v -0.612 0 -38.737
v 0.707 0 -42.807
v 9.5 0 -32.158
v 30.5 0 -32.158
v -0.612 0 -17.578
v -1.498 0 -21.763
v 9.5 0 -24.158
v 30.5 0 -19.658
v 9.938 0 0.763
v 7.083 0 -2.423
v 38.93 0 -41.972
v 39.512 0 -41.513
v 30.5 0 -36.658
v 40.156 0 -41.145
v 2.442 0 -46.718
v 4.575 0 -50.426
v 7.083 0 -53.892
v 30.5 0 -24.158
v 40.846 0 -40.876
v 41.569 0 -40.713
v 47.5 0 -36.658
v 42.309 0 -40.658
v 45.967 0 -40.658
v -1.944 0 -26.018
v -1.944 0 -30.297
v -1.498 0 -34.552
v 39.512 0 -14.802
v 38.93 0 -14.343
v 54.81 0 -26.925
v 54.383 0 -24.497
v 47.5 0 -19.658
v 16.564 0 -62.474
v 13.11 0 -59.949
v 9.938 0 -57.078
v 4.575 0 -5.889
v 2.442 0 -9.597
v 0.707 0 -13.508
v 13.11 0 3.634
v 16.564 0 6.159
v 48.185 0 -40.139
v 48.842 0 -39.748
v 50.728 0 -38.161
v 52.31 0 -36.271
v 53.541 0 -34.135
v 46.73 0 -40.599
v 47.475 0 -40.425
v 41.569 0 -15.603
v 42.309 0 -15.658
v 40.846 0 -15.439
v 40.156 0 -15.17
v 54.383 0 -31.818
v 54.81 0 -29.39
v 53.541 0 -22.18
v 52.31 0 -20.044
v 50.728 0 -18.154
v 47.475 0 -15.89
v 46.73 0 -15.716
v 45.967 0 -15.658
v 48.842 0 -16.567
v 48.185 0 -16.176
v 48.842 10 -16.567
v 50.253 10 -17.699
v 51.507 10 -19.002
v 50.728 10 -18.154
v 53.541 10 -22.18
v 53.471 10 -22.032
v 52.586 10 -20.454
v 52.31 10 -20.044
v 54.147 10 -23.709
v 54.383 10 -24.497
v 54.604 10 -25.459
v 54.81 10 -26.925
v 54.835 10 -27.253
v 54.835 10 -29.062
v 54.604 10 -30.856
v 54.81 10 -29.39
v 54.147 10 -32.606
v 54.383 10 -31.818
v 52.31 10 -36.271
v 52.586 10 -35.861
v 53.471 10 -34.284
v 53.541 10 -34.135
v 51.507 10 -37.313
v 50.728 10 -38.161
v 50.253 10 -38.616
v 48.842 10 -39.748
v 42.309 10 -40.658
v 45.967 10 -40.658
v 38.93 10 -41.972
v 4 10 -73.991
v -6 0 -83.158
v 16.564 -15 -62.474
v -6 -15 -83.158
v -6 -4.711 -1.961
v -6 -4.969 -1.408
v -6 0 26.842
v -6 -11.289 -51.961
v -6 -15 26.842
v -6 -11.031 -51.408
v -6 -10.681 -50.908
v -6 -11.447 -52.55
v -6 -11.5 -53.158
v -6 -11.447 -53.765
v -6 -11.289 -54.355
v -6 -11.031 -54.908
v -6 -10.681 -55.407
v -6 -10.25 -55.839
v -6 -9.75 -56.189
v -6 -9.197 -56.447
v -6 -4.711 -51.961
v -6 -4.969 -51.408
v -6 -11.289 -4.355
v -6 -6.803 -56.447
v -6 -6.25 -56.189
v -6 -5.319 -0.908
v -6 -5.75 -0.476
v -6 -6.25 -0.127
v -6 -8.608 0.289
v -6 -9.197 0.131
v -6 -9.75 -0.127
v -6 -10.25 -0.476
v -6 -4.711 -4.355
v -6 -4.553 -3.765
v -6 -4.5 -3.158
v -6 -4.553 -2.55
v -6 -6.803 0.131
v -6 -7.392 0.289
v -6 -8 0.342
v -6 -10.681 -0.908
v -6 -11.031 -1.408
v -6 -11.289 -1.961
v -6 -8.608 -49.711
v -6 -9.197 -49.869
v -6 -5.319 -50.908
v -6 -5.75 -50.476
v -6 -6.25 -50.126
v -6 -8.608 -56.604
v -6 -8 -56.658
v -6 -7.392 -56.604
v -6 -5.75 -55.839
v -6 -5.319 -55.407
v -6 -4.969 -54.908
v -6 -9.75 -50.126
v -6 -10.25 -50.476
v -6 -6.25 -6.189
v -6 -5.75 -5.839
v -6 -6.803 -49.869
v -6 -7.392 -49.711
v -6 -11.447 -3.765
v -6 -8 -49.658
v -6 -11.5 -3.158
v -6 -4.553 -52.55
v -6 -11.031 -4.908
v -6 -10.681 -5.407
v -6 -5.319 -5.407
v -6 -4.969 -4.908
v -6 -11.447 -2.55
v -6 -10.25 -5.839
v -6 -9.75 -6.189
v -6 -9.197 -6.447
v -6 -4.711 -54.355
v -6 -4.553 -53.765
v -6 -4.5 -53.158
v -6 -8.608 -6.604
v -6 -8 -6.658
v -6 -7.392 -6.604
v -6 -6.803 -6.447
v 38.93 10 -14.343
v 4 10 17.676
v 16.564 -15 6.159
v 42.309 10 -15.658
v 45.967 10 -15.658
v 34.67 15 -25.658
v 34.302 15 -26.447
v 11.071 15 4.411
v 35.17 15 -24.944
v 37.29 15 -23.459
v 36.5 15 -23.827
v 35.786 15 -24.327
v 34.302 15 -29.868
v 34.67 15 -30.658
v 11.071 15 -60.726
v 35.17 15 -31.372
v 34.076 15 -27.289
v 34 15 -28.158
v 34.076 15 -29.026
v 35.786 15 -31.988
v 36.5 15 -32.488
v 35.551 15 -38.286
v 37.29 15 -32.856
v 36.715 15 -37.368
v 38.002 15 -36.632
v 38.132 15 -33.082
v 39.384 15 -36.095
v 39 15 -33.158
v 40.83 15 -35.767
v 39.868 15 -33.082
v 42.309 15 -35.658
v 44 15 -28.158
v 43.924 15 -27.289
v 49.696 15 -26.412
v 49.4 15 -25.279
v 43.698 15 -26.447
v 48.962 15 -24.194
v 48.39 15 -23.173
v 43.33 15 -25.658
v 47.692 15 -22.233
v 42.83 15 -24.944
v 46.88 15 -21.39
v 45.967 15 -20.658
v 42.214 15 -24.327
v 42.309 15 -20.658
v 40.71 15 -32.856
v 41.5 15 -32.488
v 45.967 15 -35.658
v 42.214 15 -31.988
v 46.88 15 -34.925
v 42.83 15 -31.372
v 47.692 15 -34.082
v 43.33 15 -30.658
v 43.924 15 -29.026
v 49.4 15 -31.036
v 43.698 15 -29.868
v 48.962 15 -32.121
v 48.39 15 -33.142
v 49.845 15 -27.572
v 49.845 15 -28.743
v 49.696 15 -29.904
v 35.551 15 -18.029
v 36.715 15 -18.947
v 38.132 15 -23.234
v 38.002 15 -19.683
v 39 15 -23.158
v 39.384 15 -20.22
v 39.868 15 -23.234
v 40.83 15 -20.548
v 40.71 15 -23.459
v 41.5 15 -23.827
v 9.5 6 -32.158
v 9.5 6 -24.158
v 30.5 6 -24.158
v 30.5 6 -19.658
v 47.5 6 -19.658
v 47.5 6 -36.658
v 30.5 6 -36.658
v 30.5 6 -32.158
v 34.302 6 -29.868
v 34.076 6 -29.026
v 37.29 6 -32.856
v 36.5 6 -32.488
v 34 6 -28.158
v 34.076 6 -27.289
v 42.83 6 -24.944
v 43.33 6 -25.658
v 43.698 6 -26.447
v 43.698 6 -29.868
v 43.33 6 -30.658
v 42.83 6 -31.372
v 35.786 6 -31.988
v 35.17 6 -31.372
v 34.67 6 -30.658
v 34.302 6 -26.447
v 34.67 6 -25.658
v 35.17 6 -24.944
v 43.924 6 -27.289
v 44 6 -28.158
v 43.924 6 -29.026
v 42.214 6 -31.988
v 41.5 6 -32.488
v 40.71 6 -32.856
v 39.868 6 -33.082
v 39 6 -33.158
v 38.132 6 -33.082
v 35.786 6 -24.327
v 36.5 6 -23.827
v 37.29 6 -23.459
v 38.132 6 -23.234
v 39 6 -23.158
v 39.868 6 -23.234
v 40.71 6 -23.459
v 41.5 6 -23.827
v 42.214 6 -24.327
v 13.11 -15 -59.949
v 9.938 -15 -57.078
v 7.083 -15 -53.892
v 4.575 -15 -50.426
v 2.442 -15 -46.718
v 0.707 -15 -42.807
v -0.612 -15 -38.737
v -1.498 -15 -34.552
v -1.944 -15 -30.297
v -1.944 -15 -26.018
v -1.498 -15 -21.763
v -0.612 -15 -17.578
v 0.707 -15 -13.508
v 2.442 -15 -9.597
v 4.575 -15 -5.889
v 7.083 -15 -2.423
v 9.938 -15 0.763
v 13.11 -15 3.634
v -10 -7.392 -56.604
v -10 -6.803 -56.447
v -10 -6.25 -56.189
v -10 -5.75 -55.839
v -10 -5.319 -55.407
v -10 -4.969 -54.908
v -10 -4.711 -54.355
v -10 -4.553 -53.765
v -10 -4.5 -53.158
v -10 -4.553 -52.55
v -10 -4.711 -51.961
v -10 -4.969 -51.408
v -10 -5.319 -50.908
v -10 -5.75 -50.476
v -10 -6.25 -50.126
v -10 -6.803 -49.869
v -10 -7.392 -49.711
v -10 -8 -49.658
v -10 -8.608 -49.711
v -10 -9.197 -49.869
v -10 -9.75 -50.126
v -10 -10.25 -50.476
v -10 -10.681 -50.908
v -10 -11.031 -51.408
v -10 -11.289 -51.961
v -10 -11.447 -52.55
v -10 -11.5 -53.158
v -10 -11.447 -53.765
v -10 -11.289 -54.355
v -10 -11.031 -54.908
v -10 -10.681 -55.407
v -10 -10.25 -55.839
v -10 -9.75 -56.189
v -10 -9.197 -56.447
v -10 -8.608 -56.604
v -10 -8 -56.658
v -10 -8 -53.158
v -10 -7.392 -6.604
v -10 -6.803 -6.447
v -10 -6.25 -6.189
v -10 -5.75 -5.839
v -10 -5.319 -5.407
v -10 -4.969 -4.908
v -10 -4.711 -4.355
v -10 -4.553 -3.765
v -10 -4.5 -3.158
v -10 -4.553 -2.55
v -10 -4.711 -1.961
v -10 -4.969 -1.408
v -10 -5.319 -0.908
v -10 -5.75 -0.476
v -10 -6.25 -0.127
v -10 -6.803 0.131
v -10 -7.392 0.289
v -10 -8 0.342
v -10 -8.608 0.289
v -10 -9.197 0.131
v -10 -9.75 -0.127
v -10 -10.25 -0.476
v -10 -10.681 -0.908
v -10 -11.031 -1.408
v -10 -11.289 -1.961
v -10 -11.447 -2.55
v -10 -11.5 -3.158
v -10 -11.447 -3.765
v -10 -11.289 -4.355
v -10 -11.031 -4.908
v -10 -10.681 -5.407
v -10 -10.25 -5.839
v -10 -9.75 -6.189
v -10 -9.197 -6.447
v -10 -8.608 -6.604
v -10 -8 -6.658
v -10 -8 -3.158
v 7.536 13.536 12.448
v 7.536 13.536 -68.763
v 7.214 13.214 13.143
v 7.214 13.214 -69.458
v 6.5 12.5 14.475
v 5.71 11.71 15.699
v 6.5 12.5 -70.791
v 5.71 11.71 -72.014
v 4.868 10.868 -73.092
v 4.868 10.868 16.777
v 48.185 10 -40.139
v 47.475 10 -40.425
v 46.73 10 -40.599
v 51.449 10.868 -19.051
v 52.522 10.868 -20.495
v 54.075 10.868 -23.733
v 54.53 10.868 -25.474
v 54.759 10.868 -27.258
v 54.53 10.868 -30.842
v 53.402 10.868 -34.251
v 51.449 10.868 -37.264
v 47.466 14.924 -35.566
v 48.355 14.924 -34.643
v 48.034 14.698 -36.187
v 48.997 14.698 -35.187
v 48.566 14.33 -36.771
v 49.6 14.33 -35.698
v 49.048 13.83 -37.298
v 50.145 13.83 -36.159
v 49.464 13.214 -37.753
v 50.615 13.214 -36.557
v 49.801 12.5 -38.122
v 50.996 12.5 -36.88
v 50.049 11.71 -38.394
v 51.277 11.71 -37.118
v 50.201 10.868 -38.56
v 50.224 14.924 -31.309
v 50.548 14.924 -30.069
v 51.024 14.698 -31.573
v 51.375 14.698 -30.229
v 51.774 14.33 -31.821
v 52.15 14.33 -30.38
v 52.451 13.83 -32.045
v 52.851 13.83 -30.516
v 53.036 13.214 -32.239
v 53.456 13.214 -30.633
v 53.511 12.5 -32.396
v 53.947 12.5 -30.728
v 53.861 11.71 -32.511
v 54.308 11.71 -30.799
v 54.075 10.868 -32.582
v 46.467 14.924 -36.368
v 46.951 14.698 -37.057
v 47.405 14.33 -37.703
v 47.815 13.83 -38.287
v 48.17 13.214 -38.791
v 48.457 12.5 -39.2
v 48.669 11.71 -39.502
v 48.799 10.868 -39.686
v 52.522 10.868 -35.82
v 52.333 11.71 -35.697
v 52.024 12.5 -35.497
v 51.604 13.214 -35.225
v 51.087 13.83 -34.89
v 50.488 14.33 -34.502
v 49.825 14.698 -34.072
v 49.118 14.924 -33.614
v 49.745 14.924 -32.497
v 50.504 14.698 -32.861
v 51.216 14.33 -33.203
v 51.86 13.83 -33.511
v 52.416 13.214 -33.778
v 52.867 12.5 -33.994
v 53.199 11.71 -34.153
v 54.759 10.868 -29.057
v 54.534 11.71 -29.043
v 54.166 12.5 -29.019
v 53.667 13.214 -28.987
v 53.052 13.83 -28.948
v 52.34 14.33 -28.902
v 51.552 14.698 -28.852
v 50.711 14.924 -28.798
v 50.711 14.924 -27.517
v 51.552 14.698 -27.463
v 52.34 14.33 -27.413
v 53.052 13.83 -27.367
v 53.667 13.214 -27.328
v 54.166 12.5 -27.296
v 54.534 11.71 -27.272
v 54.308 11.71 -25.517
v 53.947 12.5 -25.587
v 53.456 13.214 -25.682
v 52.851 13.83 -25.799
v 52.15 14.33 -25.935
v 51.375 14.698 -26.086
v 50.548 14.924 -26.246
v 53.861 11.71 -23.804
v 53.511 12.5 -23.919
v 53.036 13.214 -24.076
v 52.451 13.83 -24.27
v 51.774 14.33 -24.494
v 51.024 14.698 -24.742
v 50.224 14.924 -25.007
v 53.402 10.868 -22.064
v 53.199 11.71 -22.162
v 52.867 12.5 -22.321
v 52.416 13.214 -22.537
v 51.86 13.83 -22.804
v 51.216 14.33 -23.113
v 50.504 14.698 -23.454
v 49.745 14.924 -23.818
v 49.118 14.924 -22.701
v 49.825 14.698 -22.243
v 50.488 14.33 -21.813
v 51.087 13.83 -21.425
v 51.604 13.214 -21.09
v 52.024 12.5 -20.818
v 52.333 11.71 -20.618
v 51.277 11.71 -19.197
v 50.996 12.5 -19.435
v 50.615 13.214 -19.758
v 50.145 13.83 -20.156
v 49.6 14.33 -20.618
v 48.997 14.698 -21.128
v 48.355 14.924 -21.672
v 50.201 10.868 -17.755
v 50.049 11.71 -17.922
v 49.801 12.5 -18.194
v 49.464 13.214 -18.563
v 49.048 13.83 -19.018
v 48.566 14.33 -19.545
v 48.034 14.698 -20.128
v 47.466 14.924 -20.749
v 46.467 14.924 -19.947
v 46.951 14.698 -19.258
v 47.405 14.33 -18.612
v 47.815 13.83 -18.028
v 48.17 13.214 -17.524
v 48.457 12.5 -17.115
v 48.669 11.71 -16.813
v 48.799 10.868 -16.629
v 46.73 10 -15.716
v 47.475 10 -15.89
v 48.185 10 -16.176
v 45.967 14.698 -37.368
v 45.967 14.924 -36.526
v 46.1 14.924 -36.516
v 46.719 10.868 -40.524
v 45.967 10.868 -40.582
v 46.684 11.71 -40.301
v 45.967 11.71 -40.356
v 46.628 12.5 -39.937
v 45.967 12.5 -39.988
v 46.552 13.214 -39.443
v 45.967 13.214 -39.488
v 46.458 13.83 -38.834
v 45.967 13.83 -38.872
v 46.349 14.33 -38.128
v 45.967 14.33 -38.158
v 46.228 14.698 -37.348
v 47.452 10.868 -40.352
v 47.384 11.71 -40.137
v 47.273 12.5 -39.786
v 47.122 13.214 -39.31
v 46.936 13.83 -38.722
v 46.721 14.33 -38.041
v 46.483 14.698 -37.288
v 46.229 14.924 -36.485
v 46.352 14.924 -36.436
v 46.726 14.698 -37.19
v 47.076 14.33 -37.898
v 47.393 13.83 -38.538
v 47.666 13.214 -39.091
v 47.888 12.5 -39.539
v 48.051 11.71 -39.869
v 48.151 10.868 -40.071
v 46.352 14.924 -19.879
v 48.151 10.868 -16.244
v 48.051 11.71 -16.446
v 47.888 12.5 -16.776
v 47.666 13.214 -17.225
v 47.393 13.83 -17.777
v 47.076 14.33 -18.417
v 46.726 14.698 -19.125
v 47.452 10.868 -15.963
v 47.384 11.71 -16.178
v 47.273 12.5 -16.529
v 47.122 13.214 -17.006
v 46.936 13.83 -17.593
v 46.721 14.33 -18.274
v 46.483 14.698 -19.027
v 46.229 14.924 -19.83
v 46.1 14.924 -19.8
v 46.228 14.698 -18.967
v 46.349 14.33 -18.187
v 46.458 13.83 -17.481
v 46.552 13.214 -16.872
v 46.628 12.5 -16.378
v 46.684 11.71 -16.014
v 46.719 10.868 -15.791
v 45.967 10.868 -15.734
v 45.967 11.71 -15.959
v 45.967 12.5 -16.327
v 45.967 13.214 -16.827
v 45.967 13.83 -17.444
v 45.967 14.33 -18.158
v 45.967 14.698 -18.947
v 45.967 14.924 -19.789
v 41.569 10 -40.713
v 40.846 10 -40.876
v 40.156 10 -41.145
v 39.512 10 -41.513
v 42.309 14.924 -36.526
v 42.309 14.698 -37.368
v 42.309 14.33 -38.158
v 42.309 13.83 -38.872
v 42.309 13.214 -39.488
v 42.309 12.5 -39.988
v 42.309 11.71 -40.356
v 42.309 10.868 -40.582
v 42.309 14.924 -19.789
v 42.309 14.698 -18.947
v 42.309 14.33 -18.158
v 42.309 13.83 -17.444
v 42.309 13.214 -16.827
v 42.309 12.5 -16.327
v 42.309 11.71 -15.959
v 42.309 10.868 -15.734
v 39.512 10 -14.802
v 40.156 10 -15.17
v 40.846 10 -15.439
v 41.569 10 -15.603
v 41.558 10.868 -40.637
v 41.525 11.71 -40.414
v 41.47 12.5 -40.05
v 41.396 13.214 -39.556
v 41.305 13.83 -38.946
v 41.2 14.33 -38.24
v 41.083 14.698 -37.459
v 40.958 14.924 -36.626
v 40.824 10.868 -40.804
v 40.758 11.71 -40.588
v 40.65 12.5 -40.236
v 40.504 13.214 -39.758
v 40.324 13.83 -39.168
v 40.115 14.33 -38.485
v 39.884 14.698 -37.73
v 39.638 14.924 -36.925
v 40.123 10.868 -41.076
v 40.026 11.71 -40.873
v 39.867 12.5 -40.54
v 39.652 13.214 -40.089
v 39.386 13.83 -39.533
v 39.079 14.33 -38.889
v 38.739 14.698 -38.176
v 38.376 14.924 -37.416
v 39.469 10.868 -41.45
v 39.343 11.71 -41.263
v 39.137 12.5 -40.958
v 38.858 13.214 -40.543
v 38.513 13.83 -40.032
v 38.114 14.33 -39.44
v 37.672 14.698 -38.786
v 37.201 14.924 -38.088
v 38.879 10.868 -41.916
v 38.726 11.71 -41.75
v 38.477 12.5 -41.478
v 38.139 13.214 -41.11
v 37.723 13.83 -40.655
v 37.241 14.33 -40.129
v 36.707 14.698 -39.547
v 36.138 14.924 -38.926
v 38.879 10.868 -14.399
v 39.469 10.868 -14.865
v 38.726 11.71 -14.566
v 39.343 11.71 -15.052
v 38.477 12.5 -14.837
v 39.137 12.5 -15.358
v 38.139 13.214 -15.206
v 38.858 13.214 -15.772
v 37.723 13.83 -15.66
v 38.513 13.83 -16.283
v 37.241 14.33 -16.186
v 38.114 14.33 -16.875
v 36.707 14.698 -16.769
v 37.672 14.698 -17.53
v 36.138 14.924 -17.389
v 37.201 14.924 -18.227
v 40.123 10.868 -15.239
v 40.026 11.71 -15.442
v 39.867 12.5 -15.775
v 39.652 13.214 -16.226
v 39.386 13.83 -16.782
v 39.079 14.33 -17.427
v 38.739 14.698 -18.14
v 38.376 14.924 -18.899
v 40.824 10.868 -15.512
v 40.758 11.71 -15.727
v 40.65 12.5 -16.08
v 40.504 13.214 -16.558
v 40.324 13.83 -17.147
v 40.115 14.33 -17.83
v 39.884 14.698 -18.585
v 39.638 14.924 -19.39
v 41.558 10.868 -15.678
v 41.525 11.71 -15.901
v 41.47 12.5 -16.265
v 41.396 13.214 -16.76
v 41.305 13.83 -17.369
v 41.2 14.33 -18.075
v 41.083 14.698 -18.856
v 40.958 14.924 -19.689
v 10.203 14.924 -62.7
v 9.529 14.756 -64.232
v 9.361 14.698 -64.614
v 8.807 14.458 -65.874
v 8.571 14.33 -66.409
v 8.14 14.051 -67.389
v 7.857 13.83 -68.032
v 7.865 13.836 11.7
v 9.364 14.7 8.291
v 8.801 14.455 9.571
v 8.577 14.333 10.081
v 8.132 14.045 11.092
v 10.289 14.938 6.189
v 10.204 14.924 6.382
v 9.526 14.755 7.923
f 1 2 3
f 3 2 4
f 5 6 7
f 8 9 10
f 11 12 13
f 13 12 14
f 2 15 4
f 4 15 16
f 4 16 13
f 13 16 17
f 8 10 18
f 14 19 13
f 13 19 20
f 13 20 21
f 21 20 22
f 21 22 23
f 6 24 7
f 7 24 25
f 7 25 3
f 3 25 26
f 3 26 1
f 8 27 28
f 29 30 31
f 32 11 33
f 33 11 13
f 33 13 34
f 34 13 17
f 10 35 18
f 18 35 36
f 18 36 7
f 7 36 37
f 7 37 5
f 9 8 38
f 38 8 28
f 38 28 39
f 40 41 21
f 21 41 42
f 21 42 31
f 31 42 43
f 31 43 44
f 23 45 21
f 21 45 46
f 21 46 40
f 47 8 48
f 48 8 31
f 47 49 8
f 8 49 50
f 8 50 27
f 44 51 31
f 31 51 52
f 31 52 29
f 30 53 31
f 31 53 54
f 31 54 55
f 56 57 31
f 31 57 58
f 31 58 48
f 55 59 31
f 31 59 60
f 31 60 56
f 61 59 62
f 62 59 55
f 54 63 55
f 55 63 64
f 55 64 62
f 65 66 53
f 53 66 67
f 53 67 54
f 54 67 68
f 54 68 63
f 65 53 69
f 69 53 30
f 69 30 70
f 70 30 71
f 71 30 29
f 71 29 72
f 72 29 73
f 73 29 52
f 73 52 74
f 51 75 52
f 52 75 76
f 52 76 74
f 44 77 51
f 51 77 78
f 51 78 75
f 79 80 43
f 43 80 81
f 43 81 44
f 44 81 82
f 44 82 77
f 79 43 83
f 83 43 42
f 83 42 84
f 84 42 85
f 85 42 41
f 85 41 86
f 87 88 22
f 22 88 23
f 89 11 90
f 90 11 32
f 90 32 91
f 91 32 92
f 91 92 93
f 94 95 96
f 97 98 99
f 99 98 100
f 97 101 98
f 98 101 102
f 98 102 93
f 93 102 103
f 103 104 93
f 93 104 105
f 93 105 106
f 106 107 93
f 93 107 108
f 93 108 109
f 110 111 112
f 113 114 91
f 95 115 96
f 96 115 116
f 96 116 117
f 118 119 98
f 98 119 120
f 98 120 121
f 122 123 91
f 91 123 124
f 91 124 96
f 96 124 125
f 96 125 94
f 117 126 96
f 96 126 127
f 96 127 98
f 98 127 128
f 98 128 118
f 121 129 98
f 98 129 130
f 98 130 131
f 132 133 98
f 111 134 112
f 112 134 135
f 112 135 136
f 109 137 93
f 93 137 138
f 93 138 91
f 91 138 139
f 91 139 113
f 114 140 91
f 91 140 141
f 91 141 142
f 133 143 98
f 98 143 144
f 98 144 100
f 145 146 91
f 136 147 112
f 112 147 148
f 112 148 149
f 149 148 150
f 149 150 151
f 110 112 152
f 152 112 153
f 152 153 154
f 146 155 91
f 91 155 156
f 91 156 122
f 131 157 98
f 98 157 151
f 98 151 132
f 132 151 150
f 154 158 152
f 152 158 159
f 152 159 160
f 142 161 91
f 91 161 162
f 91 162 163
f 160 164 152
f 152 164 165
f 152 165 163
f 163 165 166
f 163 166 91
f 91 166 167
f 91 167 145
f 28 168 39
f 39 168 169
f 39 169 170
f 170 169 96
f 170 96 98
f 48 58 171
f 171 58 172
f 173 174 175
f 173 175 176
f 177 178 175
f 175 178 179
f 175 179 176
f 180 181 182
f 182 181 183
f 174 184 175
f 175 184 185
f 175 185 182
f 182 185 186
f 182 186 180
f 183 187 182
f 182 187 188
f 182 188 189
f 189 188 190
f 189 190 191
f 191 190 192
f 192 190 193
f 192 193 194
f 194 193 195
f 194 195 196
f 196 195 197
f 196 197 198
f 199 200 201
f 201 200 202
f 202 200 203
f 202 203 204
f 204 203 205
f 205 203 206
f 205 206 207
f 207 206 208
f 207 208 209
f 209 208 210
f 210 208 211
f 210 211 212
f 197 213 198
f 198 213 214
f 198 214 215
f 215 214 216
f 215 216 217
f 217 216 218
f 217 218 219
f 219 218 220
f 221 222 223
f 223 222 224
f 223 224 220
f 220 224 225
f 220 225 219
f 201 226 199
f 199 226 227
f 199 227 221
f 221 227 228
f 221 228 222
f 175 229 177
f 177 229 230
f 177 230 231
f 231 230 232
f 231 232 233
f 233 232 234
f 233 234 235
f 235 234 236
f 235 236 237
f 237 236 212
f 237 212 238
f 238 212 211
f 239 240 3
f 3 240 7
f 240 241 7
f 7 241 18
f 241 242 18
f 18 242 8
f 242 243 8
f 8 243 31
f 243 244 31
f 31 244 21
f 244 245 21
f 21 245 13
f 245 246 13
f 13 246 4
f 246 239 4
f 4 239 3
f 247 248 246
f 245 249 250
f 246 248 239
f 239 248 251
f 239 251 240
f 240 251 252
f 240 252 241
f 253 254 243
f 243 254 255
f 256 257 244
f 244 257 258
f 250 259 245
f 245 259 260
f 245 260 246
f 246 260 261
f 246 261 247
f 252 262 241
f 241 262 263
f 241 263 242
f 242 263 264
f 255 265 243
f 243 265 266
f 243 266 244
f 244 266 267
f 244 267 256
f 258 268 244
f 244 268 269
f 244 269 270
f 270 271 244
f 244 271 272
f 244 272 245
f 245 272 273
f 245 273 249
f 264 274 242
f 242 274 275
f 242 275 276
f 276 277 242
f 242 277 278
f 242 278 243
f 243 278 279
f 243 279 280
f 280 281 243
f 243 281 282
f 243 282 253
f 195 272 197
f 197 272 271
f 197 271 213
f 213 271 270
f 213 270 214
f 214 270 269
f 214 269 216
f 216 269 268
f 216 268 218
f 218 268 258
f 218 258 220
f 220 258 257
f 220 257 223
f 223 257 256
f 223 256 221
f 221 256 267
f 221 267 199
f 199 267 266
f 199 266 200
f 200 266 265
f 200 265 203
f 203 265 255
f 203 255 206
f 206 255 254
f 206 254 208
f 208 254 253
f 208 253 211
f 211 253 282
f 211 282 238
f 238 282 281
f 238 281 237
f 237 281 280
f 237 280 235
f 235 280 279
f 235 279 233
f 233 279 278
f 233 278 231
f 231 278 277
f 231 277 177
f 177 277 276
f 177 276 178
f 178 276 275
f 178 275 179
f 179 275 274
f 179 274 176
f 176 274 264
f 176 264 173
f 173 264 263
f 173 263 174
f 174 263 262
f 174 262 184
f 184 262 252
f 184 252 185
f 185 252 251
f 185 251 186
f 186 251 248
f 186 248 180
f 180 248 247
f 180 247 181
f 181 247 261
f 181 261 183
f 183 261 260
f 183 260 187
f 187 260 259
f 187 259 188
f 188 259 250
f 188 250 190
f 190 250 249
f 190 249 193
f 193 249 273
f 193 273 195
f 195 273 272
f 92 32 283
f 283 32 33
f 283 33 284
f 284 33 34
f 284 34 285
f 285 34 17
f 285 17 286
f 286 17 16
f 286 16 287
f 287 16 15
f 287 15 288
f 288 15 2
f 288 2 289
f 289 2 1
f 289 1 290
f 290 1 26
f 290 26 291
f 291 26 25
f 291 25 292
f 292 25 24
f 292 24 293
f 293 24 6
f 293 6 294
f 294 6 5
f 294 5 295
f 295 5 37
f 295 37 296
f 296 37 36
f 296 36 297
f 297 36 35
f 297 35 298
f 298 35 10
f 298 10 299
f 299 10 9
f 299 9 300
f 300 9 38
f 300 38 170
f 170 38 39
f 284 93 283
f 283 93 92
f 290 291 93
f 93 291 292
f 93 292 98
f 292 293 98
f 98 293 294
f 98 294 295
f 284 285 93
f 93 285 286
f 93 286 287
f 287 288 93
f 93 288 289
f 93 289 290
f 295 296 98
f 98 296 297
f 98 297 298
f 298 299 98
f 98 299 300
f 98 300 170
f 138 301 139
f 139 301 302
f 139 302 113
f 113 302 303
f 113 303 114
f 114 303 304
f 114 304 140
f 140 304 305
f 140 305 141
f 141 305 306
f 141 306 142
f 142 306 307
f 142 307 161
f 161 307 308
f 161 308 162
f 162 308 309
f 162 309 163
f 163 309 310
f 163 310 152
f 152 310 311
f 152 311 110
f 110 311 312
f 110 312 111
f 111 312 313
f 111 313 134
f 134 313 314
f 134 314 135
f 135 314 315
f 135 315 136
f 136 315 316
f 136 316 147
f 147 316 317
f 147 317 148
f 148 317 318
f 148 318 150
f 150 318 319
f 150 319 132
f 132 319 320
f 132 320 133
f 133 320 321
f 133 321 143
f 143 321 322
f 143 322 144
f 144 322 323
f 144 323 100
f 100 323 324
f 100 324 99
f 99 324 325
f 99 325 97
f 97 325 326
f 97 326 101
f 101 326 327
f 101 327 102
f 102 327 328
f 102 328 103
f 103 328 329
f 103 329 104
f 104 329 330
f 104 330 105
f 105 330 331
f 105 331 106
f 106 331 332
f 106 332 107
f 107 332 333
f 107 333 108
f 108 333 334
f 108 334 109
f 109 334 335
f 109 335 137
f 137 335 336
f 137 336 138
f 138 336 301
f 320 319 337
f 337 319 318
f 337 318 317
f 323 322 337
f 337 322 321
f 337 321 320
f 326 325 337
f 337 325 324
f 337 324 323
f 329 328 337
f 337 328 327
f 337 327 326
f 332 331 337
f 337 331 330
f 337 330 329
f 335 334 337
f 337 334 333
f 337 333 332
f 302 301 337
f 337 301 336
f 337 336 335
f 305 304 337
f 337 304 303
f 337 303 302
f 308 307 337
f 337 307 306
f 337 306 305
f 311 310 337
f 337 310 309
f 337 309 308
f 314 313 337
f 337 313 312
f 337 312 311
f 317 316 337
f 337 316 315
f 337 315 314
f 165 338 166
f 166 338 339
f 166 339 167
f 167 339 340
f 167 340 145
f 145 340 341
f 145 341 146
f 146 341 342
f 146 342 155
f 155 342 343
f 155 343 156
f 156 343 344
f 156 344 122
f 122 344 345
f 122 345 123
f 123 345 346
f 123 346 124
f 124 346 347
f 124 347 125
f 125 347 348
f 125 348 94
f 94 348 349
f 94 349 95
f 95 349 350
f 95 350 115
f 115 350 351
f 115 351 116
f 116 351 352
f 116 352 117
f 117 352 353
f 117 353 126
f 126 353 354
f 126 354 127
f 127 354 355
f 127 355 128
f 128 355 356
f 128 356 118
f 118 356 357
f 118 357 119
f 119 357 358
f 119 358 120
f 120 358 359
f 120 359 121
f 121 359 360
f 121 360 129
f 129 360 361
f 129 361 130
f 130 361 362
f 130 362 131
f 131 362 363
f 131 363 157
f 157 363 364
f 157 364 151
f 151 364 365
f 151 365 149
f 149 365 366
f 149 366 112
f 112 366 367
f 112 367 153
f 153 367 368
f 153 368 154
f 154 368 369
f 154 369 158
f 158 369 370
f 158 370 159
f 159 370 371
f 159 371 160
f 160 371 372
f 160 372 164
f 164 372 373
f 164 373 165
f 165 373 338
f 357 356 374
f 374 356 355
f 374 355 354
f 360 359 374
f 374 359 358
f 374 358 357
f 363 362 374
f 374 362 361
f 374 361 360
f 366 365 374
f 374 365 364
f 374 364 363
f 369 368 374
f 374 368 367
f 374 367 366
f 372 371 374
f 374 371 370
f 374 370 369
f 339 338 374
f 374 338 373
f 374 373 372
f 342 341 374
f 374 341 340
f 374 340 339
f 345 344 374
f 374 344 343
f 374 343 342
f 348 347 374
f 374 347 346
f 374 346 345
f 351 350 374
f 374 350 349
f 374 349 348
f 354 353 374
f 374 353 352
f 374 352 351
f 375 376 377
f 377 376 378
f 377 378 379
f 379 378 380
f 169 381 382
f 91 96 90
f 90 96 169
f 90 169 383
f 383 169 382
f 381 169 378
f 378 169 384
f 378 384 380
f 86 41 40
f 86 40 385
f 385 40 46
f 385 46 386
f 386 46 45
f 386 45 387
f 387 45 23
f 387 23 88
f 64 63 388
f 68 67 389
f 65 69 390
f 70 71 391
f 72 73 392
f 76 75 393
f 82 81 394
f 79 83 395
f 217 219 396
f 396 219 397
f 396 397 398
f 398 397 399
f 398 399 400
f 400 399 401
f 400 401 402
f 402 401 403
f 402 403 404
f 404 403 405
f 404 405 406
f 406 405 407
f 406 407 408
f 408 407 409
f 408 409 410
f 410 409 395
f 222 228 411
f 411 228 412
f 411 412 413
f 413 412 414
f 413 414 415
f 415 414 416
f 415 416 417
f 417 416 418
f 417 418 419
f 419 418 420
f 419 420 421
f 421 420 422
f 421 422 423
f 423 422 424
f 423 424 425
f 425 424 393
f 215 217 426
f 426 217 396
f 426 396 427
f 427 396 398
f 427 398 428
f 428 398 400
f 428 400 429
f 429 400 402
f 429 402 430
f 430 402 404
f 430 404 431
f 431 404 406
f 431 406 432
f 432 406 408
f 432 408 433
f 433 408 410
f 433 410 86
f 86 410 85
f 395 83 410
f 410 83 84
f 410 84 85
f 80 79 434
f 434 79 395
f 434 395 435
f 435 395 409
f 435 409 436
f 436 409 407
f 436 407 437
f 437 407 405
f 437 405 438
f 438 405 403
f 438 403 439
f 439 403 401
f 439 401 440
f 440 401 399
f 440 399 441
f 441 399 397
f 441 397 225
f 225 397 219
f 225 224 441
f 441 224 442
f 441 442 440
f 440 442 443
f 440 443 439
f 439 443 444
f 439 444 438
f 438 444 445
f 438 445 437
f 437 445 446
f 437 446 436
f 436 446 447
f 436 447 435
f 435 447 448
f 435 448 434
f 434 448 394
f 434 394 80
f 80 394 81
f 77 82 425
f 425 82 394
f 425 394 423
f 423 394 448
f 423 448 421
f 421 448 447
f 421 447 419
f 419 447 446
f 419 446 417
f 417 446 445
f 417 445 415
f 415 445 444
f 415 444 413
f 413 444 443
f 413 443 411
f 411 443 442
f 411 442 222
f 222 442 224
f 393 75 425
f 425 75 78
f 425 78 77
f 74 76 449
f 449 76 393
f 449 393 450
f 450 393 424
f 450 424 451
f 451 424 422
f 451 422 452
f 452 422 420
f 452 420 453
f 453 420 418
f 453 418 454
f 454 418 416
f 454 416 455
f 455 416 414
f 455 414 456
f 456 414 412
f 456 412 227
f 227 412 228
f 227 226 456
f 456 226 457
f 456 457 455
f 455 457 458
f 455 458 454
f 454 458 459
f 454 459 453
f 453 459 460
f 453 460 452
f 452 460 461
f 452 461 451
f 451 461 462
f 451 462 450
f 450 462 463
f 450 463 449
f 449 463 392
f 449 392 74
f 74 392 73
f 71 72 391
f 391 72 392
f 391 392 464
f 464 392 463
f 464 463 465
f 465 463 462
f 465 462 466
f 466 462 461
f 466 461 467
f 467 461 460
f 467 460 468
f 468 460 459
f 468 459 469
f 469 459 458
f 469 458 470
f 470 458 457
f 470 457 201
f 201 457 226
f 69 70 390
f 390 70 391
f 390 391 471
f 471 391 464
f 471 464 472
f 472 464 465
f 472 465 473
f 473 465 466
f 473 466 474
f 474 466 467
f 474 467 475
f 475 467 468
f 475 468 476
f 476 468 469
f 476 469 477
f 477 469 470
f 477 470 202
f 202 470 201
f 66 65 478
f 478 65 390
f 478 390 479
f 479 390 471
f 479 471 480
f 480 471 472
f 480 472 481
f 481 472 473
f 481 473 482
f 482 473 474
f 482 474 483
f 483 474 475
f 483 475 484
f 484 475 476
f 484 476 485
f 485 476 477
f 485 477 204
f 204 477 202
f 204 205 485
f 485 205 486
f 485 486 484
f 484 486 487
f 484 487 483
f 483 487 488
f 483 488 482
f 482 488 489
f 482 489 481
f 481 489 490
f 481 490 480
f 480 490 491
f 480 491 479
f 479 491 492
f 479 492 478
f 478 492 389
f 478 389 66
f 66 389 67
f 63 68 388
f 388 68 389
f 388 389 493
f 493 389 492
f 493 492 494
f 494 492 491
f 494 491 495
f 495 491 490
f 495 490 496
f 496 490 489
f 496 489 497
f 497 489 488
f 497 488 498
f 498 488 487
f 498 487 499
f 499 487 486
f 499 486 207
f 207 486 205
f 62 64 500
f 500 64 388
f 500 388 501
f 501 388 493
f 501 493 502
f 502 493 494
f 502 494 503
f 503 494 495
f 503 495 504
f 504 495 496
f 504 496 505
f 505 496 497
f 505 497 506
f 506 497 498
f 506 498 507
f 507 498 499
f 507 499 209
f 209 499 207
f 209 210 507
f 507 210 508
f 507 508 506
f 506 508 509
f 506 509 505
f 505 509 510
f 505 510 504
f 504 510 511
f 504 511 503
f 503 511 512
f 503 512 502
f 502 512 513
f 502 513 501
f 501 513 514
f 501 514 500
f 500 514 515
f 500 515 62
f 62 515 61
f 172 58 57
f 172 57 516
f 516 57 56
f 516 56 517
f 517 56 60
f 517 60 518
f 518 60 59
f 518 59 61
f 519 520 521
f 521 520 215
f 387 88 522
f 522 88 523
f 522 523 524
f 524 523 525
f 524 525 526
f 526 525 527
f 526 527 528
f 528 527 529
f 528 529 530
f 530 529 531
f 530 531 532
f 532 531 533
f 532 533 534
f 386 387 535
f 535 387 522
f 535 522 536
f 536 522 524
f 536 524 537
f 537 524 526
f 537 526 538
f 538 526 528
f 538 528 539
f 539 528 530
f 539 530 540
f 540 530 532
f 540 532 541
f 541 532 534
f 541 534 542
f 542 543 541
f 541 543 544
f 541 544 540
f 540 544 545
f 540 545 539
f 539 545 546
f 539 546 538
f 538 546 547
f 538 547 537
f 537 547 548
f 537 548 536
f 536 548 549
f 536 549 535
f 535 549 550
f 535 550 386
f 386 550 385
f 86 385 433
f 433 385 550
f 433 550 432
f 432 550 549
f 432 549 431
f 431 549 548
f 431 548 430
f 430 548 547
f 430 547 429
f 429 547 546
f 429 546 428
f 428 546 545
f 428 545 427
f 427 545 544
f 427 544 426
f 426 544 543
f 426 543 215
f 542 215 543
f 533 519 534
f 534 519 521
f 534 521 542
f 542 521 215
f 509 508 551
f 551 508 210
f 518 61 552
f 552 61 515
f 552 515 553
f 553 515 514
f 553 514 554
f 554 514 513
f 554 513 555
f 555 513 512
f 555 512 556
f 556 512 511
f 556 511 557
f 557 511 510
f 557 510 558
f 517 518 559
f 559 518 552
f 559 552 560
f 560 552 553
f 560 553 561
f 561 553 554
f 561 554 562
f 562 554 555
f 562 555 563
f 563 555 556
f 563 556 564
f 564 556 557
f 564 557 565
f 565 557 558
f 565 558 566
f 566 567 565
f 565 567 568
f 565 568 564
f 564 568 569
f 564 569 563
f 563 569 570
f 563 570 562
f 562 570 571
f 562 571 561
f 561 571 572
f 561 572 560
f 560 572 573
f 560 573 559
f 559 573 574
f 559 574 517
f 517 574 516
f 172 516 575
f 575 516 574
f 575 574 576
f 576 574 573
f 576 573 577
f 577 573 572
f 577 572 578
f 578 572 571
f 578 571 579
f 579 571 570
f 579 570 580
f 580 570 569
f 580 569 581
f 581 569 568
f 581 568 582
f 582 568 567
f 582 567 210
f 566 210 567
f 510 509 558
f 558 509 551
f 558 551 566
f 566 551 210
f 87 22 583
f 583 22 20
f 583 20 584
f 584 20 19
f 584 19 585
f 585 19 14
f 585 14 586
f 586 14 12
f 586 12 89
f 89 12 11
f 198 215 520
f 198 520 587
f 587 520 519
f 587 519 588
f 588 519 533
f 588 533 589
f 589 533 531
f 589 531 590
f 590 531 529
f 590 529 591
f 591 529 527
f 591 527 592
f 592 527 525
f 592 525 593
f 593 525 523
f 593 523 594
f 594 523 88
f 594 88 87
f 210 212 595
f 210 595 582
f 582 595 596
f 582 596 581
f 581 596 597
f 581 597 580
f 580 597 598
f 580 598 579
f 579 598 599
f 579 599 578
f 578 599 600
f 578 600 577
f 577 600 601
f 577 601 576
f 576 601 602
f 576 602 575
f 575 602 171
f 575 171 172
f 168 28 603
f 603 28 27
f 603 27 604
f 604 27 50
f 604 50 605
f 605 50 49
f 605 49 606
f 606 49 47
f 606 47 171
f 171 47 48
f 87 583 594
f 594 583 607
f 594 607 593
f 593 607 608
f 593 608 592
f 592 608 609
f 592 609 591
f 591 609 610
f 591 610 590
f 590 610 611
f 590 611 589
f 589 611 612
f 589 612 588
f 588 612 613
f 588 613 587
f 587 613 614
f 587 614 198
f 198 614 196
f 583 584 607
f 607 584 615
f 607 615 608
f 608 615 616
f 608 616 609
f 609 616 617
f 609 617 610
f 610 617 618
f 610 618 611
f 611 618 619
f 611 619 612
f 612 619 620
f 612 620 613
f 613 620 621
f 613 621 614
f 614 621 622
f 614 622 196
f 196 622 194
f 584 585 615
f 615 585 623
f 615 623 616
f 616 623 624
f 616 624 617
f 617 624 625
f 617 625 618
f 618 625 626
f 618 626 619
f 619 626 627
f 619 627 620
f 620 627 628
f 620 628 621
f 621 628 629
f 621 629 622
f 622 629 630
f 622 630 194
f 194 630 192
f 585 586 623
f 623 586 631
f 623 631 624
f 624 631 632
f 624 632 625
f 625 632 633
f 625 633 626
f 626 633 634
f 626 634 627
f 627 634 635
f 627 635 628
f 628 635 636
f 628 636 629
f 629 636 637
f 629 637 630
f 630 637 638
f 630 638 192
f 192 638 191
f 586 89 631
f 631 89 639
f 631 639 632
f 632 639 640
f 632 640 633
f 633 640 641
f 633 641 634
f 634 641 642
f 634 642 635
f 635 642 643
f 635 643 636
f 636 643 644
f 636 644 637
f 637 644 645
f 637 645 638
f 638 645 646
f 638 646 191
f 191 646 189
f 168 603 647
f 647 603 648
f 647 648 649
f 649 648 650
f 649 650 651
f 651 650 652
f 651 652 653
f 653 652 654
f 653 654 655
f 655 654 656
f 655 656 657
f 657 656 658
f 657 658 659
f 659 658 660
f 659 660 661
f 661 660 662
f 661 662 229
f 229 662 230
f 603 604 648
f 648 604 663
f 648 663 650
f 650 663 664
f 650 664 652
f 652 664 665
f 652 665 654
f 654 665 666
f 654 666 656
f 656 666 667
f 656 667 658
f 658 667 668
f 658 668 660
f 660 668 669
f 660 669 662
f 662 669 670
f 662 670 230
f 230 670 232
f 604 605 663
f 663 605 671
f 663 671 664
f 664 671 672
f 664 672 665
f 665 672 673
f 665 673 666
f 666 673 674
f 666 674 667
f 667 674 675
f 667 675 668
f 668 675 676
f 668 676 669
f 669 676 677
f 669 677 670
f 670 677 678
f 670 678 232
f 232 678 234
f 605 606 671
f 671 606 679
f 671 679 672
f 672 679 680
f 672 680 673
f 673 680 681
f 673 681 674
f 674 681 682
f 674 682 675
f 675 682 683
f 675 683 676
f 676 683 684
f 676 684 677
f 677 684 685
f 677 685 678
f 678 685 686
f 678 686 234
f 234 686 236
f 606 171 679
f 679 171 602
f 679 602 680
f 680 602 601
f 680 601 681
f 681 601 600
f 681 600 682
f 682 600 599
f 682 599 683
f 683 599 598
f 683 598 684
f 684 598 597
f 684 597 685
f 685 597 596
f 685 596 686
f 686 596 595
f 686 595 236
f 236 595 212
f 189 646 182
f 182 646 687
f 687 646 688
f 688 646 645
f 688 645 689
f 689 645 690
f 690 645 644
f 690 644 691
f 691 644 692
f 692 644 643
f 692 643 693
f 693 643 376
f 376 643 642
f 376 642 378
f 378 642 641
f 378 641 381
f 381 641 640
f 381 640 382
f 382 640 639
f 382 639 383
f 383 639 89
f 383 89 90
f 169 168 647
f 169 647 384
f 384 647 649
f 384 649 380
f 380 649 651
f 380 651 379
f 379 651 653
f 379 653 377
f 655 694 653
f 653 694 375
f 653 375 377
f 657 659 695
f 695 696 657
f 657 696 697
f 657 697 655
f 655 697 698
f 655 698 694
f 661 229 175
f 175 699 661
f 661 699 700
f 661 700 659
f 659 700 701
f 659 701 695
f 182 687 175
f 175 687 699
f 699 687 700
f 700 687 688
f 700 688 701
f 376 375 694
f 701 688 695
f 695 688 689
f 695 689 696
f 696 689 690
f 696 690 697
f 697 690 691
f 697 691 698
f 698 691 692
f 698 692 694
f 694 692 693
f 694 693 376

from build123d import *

# Parameters (mm, degrees)
BOSS_EXTRUDE1_DEPTH = 15
SKETCH2_W           = 21
SKETCH2_H           = 8
SKETCH2_W_2         = 17
SKETCH2_H_2         = 17
CUT_EXTRUDE2_DEPTH  = 6
SKETCH3_R           = 5
CUT_EXTRUDE3_DEPTH  = 10
BOSS_EXTRUDE3_DEPTH = 15
SKETCH5_R           = 3.5
BOSS_EXTRUDE4_DEPTH = 4
CHAMFER1_SIZE       = 15
FILLET1_R           = 5


with BuildPart() as part:
    # Sketch1 → Boss-Extrude1 (new body)
    with BuildSketch(Plane(origin=(0, 0, 0), x_dir=(1, 0, 0), z_dir=(0, 1, 0))):
        with BuildLine():
            Line((-6, -26.842412903), (40.363636364, 15.657587097))
            Line((40.363636364, 15.657587097), (47.363636364, 15.657587097))
            ThreePointArc((47.363636364, 15.657587097), (54.863636364, 28.157587097), (47.363636364, 40.657587097))
            Line((47.363636364, 40.657587097), (40.363636364, 40.657587097))
            Line((40.363636364, 40.657587097), (-6, 83.157587097))
            Line((-6, 83.157587097), (-6, -26.842412903))
        make_face()
    extrude(amount=BOSS_EXTRUDE1_DEPTH)

    # Sketch2 → Cut-Extrude2 (cut)
    with BuildSketch(Plane.XZ):
        with Locations((20, -28.157587097)):
            Rectangle(SKETCH2_W, SKETCH2_H)
        with Locations((39, -28.157587097)):
            Rectangle(SKETCH2_W_2, SKETCH2_H_2)
    extrude(amount=-CUT_EXTRUDE2_DEPTH, mode=Mode.SUBTRACT)

    # Sketch3 → Cut-Extrude3 (cut, through all)
    with BuildSketch(Plane(origin=(0, 6, 0), x_dir=(-1, 0, 0), z_dir=(0, 1, 0))):
        with Locations((-39, -28.157587097)):
            Circle(SKETCH3_R)
    extrude(amount=CUT_EXTRUDE3_DEPTH, mode=Mode.SUBTRACT)

    # Sketch6 → Boss-Extrude3 (add)
    with BuildSketch(Plane.XZ):
        with BuildLine():
            Line((-6, 26.842412903), (-6, -83.157587097))
            Line((-6, -83.157587097), (16.563859252, -62.474049449))
            ThreePointArc((16.563859252, -62.474049449), (-2, -28.157587097), (16.563859252, 6.158875255))
            Line((16.563859252, 6.158875255), (-6, 26.842412903))
        make_face()
    extrude(amount=BOSS_EXTRUDE3_DEPTH)

    # Sketch5 → Boss-Extrude4 (add)
    with BuildSketch(Plane.ZY.offset(6)):
        with Locations((-53.157587097, -8)):
            Circle(SKETCH5_R)
        with Locations((-3.157587097, -8)):
            Circle(SKETCH5_R)
    extrude(amount=BOSS_EXTRUDE4_DEPTH)

    # Chamfer1
    chamfer1_edges = [part.edges().sort_by_distance(p)[0] for p in [
        (-6, 15, -28.157587097),
    ]]
    chamfer(chamfer1_edges, length=CHAMFER1_SIZE)

    # Fillet1
    fillet1_edges = [part.edges().sort_by_distance(p)[0] for p in [
        (43.863636364, 15, -40.657587097),
        (47.363636364, 7.5, -15.657587097),
        (40.363636364, 7.5, -15.657587097),
        (40.363636364, 7.5, -40.657587097),
        (47.363636364, 7.5, -40.657587097),
        (24.681818182, 15, -55.032587097),
        (43.863636364, 15, -15.657587097),
        (54.863636364, 15, -28.157587097),
        (24.681818182, 15, -1.282587097),
        (9, 15, -28.157587097),
    ]]
    fillet(fillet1_edges, radius=FILLET1_R)


solid = part.part
